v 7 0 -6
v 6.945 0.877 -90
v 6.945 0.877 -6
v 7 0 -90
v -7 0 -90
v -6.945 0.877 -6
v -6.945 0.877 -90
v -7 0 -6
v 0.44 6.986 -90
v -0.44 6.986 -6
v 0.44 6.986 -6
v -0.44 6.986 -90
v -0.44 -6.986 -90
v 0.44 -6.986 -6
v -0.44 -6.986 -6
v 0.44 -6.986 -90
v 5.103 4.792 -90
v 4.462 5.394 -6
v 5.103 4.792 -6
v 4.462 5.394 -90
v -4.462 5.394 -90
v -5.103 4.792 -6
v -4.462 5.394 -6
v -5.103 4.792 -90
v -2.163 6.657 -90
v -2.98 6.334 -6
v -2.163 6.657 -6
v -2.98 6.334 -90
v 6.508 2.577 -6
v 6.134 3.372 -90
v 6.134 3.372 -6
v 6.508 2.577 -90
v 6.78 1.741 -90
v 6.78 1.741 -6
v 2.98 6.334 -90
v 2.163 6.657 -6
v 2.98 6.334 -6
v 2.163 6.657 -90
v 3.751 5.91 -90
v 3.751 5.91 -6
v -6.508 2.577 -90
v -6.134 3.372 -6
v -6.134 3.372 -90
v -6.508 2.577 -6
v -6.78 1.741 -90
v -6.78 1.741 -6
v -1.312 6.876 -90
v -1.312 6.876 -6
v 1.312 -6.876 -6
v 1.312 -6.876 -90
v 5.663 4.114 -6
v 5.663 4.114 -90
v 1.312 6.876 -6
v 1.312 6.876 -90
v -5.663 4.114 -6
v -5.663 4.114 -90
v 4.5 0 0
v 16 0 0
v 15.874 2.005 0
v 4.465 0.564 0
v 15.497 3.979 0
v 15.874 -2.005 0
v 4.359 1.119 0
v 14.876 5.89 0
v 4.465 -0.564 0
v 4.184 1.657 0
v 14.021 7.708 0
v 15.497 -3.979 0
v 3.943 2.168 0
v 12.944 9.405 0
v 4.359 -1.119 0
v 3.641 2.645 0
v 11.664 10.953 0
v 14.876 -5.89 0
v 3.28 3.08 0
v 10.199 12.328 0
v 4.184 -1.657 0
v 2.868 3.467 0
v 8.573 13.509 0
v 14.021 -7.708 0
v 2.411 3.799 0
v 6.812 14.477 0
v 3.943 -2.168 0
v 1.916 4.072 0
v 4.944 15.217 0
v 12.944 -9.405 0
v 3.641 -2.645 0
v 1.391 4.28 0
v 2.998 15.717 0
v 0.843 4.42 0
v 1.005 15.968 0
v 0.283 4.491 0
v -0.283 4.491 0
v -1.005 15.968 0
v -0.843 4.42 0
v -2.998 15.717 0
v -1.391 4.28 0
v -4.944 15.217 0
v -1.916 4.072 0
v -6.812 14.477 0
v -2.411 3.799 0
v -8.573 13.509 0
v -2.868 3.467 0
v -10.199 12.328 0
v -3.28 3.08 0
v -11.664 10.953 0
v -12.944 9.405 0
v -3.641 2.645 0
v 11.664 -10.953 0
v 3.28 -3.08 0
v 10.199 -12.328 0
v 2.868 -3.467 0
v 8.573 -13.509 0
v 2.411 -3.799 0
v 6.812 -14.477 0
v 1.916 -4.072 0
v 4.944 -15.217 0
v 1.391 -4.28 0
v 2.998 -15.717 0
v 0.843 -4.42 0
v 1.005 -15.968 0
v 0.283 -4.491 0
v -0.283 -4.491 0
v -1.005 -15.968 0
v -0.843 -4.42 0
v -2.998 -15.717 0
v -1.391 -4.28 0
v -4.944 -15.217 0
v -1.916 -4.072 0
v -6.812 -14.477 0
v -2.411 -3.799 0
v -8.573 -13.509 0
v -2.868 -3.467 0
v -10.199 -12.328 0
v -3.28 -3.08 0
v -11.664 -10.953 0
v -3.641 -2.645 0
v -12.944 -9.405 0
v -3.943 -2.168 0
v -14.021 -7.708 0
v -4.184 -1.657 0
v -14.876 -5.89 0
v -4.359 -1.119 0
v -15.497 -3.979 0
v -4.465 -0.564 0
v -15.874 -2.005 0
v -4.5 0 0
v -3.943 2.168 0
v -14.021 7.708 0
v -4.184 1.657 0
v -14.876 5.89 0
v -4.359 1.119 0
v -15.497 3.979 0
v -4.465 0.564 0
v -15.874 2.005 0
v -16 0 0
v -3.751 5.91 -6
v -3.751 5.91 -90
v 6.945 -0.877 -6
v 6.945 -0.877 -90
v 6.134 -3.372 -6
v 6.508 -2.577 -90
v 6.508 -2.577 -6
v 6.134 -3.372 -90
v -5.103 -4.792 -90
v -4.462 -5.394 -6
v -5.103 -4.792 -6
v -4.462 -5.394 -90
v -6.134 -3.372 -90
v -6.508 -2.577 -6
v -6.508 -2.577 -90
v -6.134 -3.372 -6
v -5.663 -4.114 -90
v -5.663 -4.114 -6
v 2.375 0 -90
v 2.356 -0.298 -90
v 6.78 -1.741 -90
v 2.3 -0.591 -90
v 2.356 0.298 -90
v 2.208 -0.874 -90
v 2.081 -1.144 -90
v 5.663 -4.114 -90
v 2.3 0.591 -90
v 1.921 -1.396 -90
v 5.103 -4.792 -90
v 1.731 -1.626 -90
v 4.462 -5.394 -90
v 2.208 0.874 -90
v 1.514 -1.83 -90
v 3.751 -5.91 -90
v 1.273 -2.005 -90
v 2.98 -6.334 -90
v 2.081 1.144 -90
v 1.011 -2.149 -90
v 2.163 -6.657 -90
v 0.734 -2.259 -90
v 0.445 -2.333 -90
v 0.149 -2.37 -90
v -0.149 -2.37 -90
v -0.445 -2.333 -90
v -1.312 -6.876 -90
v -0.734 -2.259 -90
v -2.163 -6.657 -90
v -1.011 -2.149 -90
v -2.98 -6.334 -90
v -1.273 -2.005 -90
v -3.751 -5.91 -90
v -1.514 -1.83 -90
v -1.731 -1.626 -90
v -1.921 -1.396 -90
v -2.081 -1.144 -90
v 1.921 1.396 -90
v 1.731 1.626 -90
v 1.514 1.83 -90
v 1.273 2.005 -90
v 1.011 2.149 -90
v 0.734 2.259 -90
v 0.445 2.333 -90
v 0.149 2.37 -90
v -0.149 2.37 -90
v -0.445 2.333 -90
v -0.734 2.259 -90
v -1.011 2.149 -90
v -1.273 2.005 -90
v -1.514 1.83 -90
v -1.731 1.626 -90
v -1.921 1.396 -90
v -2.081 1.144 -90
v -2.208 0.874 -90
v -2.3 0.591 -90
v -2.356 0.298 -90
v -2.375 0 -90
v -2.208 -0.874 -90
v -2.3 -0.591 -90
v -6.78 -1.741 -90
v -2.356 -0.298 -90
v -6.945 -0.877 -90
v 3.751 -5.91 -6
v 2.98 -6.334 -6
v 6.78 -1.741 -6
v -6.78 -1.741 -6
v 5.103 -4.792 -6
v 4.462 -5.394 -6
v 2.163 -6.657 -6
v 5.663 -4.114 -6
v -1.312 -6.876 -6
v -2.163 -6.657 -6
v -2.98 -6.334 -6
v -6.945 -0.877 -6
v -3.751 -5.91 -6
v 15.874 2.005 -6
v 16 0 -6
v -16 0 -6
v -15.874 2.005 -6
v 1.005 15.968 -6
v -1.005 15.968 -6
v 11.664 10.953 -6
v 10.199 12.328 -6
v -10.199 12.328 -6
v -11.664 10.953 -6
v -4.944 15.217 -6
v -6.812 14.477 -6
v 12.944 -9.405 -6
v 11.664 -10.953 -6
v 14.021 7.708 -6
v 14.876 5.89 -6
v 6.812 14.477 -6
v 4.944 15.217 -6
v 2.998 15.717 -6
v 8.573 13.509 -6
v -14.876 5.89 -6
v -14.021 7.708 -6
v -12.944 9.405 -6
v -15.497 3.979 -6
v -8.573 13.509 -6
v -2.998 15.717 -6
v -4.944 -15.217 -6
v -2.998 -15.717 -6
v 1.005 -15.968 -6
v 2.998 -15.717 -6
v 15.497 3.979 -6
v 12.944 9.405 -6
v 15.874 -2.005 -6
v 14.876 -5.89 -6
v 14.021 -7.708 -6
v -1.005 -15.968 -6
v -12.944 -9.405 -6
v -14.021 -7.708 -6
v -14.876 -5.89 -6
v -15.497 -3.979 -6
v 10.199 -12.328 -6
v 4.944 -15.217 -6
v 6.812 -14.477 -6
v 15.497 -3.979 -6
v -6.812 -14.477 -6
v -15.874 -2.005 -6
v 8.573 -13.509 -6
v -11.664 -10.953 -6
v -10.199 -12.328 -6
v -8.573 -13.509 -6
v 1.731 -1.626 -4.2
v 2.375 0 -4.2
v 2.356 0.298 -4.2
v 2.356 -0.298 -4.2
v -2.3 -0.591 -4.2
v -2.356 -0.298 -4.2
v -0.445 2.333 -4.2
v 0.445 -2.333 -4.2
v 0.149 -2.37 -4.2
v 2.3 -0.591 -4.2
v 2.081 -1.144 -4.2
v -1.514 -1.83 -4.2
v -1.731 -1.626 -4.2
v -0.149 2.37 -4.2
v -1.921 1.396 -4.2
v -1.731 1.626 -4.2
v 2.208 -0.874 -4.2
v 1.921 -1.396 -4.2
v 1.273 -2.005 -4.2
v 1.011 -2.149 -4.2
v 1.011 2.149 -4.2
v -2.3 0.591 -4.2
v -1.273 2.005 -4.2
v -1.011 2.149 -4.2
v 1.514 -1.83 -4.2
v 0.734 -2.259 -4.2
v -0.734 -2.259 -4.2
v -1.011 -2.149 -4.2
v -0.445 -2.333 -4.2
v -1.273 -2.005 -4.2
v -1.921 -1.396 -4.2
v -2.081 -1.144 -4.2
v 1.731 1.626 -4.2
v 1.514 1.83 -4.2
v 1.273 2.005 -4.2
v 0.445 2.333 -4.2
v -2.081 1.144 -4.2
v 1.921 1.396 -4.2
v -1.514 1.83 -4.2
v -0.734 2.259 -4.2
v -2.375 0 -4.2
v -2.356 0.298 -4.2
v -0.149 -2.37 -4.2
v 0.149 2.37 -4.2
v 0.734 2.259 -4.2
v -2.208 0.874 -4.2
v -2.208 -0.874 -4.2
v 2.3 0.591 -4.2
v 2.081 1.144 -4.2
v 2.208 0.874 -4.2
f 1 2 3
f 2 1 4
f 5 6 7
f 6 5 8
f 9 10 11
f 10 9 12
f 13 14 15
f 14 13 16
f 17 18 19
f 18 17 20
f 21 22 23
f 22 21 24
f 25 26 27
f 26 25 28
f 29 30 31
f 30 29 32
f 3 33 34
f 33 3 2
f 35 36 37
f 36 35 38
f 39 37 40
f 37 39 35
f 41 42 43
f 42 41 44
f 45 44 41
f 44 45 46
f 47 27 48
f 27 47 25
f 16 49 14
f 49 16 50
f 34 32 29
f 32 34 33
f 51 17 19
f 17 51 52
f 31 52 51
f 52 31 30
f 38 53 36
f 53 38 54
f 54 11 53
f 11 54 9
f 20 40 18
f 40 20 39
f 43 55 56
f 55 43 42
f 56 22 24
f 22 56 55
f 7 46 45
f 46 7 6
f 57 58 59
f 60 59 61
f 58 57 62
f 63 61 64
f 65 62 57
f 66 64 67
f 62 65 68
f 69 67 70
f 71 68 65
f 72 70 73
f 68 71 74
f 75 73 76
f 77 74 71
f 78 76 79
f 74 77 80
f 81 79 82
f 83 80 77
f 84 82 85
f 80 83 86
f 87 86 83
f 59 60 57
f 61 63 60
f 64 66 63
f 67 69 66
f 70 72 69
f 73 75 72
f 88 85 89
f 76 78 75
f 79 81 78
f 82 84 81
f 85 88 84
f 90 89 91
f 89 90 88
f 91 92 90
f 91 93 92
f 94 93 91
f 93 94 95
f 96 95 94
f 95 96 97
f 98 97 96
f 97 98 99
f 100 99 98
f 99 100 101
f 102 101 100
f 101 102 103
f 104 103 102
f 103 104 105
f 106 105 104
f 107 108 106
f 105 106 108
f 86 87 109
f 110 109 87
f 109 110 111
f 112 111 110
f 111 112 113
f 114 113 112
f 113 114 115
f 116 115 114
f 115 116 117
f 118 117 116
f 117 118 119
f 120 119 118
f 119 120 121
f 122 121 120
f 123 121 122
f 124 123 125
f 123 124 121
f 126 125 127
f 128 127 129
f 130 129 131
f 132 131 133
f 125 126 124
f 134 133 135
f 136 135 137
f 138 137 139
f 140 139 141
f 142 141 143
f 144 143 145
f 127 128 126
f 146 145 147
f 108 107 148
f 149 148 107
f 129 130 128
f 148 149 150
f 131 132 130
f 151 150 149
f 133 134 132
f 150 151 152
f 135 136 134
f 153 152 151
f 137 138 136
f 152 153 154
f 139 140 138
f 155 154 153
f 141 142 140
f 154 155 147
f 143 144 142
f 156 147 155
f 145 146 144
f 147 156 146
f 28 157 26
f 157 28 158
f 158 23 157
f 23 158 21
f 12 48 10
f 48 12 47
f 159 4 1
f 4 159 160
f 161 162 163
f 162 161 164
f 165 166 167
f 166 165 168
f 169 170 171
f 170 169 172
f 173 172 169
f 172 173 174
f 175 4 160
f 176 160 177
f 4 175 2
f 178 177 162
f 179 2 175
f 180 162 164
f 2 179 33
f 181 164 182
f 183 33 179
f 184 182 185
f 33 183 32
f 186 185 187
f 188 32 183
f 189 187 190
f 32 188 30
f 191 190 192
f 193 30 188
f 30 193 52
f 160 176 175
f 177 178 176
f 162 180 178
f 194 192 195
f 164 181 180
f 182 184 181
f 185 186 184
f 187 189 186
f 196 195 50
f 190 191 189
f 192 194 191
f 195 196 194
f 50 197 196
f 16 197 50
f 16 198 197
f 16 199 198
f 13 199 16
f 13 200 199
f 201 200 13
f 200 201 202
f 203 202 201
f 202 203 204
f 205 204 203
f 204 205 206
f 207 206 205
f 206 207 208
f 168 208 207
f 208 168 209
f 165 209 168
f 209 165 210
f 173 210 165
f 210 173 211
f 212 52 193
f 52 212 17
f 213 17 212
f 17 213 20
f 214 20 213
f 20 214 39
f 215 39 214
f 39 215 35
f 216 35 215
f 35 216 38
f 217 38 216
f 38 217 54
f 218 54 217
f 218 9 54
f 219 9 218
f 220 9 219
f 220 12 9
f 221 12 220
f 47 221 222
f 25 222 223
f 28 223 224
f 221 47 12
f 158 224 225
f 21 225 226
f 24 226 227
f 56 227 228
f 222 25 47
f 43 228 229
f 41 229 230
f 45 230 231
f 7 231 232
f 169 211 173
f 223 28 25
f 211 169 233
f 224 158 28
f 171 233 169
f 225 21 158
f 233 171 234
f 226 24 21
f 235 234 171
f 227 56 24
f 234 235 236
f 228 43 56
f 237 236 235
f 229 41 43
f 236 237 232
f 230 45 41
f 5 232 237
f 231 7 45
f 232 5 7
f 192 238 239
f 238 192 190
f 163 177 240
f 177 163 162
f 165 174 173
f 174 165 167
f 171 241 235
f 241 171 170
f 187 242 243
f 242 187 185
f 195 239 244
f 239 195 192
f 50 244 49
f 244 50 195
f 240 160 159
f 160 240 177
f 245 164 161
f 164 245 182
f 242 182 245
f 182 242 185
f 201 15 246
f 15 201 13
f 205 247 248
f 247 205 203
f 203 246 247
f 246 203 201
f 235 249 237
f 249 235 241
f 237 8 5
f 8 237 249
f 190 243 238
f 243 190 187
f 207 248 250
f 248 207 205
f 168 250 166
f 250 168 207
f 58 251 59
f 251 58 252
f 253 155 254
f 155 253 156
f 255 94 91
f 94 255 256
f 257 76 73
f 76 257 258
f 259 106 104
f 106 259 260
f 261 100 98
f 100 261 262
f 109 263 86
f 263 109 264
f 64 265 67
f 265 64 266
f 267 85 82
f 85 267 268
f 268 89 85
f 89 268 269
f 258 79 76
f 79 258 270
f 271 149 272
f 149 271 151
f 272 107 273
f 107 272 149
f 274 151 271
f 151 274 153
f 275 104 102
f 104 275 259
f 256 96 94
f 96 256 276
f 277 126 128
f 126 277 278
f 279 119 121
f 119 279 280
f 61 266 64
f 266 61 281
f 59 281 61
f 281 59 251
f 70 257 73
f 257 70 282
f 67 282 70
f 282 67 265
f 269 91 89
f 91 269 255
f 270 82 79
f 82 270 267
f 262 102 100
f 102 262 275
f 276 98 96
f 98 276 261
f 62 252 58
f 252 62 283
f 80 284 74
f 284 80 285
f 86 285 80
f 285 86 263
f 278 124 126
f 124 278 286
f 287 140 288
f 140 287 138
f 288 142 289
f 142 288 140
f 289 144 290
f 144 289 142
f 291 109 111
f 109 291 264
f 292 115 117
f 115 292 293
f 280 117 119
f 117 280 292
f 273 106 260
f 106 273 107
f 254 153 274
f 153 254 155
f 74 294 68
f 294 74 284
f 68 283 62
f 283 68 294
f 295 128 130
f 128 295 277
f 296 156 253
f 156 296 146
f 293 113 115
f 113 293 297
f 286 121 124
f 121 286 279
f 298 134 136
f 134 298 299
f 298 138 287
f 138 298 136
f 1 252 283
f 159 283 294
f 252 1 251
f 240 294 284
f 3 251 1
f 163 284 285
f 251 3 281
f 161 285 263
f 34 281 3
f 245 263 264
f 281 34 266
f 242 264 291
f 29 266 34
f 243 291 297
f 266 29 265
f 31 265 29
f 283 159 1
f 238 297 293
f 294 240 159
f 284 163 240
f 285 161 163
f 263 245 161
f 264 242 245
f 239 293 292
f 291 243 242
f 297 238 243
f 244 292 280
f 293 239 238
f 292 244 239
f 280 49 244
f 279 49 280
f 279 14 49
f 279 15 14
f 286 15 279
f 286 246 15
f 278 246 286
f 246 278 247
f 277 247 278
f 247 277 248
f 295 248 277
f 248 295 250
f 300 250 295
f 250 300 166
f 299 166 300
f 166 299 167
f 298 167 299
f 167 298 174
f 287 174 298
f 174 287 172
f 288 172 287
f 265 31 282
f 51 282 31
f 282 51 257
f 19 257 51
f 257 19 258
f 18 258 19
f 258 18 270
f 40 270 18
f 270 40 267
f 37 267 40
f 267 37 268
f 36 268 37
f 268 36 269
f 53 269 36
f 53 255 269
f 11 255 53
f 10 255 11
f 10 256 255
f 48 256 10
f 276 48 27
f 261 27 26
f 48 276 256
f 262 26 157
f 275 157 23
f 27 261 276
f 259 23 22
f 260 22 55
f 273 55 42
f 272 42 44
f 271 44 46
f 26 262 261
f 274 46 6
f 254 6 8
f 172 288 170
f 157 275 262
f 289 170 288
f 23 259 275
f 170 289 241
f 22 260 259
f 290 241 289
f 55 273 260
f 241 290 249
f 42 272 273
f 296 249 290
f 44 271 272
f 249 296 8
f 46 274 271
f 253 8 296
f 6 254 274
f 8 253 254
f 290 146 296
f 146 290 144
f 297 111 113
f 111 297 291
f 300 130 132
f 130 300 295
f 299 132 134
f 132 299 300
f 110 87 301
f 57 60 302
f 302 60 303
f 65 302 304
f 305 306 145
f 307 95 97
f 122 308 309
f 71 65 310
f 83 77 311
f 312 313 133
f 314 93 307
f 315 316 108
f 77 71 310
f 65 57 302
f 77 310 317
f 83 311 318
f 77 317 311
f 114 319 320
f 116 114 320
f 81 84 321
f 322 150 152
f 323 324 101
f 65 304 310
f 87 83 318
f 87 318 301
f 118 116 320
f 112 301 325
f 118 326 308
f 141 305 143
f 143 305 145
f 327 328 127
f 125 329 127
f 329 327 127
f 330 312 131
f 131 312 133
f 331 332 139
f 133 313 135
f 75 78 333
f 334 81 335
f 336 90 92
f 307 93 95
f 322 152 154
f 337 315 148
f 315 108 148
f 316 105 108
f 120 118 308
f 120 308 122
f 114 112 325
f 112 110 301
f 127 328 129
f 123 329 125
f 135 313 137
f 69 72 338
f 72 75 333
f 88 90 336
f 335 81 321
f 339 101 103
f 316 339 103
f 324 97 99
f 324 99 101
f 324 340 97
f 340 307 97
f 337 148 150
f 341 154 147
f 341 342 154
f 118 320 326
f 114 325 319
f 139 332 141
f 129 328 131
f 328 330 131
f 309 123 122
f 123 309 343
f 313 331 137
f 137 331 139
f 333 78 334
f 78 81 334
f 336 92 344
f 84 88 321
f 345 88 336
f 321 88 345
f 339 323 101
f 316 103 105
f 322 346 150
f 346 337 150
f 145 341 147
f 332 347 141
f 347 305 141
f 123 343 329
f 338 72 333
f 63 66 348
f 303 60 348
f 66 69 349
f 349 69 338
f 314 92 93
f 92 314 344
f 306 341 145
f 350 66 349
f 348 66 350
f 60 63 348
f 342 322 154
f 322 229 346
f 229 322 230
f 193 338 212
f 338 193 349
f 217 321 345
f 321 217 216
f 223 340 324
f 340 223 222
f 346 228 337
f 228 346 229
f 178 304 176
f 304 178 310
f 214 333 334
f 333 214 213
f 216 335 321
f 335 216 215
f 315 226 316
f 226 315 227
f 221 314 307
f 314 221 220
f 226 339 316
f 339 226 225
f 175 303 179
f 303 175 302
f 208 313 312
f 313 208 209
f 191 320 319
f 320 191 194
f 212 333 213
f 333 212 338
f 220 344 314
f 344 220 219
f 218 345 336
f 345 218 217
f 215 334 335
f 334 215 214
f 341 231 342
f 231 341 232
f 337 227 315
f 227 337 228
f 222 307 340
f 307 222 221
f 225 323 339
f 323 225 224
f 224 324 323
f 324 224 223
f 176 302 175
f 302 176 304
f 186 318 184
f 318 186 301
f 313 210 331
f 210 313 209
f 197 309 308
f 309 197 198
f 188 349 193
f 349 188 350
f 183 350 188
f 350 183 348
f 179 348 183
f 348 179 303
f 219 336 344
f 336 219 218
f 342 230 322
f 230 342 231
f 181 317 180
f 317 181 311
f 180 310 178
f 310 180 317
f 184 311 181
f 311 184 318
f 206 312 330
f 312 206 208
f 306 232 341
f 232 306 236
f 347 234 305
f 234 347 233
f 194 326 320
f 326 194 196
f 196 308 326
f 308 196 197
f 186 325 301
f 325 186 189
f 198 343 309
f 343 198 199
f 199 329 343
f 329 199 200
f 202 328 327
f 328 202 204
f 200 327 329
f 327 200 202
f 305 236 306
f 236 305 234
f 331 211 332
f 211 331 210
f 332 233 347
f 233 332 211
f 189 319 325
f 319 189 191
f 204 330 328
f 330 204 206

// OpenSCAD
$fn = 50;


difference() {
	union() {
		translate(v = [0, 0, -90.0000000000]) {
			cylinder(h = 90, r = 7.0000000000);
		}
		translate(v = [0, 0, -6.0000000000]) {
			cylinder(h = 6, r = 16.0000000000);
		}
	}
	union() {
		translate(v = [0, 0, 0]) {
			rotate(a = [0, 0, 0]) {
				difference() {
					union() {
						#translate(v = [0, 0, -90.0000000000]) {
							cylinder(h = 90, r = 2.2500000000);
						}
						#translate(v = [0, 0, -4.2000000000]) {
							cylinder(h = 4.2000000000, r1 = 2.3750000000, r2 = 4.5000000000);
						}
						#translate(v = [0, 0, -90.0000000000]) {
							cylinder(h = 90, r = 2.3750000000);
						}
						#translate(v = [0, 0, -90.0000000000]) {
							cylinder(h = 90, r = 2.2500000000);
						}
					}
					union();
				}
			}
		}
	}
}
